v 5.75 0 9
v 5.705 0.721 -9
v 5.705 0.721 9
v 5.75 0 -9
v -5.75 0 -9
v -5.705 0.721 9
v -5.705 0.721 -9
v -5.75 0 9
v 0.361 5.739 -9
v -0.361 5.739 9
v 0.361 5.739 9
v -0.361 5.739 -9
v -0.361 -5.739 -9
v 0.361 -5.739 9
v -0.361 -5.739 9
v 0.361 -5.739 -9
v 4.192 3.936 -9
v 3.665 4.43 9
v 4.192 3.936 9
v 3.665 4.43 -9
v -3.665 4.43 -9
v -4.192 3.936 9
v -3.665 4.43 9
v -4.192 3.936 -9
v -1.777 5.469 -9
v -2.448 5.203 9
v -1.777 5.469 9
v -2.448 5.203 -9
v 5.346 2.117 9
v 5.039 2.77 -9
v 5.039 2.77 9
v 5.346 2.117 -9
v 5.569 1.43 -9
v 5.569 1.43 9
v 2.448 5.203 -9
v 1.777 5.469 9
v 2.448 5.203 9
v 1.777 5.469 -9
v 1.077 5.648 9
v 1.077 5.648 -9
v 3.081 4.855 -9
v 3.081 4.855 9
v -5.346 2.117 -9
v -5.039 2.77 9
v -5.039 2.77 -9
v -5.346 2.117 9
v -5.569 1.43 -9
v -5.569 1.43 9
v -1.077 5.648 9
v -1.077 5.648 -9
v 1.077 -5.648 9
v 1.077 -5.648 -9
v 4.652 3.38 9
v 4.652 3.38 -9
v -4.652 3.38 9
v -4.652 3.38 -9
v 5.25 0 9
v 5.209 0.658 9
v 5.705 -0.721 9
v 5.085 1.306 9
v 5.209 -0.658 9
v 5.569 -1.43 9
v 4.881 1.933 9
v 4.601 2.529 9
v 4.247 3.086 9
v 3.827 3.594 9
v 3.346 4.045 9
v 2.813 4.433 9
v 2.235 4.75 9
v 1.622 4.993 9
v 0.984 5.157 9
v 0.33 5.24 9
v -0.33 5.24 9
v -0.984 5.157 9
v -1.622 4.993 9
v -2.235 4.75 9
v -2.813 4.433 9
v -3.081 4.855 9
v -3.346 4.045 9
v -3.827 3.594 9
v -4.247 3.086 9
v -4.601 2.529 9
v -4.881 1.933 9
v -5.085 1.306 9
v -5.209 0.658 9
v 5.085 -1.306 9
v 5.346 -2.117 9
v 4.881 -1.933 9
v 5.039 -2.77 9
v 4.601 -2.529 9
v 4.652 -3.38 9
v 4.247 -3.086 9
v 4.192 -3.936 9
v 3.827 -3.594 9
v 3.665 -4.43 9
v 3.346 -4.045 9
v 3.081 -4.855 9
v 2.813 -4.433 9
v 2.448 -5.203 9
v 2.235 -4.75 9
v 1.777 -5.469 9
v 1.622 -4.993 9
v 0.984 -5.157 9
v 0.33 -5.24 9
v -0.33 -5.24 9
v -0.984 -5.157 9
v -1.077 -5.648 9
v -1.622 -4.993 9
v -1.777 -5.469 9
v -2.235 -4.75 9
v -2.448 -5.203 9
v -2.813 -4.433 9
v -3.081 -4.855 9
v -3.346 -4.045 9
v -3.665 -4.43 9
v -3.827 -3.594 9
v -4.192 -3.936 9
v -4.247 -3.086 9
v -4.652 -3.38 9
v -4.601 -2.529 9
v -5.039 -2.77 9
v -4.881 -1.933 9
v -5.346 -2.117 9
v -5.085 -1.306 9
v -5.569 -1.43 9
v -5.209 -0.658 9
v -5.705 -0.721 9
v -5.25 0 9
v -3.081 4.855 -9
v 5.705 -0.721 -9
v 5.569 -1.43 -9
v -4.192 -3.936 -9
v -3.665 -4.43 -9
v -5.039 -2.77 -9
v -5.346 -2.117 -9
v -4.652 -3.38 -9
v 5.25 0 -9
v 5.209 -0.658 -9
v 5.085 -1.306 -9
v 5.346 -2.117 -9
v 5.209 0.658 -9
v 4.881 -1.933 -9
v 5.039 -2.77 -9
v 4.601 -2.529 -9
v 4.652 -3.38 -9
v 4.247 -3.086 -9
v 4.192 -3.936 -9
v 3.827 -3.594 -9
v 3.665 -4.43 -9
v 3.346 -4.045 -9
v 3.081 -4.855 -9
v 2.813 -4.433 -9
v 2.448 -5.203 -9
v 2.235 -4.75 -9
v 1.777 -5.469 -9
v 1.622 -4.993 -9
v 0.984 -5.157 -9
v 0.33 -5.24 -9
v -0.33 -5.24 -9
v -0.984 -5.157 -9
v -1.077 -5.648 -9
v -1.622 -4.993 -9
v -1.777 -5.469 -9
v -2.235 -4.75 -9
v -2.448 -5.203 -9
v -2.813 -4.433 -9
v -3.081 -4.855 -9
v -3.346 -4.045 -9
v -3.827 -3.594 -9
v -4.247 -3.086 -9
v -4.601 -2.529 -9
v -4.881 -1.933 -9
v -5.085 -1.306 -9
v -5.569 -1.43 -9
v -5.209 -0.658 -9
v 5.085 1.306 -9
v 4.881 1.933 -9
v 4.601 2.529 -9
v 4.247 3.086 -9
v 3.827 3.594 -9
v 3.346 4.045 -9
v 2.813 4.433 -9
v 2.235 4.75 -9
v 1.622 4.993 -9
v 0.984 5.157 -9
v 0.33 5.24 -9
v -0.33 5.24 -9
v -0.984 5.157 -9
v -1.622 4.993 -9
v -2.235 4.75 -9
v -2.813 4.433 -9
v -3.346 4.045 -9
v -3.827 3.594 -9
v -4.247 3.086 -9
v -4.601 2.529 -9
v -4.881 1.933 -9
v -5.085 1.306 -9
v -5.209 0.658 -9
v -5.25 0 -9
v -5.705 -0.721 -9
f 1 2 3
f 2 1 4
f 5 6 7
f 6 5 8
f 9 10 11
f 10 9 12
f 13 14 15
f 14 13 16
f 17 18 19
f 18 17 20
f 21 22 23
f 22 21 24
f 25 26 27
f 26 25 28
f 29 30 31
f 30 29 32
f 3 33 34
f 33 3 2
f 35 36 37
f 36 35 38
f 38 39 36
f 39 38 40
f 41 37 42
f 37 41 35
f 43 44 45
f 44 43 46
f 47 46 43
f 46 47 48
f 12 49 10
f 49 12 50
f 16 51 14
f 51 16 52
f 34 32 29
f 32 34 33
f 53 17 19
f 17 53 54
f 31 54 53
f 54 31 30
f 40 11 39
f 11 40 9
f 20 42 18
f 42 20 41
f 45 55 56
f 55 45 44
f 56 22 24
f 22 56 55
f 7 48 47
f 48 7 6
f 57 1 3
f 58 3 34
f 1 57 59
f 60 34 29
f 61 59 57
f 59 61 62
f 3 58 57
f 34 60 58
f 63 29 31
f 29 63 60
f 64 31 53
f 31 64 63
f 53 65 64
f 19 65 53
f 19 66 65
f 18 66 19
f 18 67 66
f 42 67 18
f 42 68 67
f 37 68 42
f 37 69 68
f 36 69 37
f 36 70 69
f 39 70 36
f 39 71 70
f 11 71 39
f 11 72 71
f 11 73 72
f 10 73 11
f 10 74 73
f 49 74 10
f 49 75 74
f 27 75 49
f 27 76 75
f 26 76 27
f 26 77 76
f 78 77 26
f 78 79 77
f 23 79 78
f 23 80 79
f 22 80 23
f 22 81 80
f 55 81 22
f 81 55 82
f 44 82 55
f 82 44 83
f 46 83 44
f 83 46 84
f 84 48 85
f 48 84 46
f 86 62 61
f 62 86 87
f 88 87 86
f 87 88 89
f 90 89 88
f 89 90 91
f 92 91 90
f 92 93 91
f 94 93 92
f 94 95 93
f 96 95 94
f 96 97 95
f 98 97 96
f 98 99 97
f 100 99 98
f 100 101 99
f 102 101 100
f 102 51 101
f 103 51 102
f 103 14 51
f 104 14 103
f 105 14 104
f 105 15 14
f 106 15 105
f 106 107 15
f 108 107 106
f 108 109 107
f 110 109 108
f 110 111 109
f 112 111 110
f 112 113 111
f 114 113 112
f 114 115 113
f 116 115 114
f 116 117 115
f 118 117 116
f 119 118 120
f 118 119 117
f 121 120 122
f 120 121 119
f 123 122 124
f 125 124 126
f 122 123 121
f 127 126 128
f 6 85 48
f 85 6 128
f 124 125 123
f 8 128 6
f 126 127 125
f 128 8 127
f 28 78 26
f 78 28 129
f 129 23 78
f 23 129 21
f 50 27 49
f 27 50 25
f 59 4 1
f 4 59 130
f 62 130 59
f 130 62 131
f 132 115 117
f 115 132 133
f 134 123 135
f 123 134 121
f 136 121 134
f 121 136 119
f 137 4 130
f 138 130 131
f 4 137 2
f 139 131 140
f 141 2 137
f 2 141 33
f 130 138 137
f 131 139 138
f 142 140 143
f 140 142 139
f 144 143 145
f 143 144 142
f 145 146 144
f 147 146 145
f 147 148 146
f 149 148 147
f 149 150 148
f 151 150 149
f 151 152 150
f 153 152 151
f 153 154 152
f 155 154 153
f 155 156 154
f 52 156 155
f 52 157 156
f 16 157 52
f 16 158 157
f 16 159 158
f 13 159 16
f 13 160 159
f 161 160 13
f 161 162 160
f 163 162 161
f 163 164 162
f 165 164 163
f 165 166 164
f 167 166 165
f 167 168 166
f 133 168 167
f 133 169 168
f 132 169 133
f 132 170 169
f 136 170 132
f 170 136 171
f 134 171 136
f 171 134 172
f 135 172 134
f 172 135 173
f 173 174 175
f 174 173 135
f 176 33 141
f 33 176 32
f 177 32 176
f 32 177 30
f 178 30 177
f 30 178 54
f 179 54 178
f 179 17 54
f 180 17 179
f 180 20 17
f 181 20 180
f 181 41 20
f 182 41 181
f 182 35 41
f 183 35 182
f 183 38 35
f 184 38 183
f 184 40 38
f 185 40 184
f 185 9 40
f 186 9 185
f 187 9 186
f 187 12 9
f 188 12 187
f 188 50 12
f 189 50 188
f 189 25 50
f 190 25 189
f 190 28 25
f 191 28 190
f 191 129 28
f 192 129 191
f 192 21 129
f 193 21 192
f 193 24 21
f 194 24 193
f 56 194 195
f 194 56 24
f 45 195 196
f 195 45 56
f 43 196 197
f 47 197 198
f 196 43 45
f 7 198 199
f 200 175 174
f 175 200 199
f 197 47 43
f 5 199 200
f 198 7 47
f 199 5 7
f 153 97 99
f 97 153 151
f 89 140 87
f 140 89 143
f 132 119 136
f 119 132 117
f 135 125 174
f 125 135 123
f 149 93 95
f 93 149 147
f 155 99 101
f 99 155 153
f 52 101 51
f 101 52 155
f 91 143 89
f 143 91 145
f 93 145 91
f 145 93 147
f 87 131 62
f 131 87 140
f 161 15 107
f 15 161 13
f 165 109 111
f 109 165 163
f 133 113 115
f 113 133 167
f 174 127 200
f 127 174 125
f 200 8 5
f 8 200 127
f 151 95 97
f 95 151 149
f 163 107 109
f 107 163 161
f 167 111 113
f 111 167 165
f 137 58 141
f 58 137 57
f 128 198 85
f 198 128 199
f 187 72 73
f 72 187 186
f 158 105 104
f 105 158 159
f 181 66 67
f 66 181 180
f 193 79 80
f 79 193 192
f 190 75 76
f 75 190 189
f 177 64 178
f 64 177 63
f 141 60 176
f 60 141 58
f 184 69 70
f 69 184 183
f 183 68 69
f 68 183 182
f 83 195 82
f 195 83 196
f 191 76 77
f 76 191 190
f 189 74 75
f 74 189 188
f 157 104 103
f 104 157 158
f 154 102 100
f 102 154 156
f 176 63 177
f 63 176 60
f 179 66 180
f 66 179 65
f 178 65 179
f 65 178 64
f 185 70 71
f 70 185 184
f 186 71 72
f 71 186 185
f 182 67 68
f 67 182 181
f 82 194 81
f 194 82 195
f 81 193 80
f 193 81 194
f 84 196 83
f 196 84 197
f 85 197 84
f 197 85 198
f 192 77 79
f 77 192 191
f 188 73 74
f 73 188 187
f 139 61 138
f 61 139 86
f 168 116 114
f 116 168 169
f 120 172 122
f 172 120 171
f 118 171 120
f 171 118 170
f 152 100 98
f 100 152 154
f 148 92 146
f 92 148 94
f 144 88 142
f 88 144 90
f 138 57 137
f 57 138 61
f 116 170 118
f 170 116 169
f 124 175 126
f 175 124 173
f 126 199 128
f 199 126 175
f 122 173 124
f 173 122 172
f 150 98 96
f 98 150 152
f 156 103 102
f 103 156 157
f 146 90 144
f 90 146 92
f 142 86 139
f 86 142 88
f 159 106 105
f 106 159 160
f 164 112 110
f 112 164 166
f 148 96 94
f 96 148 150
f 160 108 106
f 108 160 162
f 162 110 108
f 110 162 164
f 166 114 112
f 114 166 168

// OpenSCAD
$fn = 50;


difference() {
	union() {
		translate(v = [0, 0, -9.0000000000]) {
			cylinder(h = 18, r = 5.7500000000);
		}
	}
	union() {
		translate(v = [0, 0, -100.0000000000]) {
			cylinder(h = 200, r = 5.2500000000);
		}
	}
}
